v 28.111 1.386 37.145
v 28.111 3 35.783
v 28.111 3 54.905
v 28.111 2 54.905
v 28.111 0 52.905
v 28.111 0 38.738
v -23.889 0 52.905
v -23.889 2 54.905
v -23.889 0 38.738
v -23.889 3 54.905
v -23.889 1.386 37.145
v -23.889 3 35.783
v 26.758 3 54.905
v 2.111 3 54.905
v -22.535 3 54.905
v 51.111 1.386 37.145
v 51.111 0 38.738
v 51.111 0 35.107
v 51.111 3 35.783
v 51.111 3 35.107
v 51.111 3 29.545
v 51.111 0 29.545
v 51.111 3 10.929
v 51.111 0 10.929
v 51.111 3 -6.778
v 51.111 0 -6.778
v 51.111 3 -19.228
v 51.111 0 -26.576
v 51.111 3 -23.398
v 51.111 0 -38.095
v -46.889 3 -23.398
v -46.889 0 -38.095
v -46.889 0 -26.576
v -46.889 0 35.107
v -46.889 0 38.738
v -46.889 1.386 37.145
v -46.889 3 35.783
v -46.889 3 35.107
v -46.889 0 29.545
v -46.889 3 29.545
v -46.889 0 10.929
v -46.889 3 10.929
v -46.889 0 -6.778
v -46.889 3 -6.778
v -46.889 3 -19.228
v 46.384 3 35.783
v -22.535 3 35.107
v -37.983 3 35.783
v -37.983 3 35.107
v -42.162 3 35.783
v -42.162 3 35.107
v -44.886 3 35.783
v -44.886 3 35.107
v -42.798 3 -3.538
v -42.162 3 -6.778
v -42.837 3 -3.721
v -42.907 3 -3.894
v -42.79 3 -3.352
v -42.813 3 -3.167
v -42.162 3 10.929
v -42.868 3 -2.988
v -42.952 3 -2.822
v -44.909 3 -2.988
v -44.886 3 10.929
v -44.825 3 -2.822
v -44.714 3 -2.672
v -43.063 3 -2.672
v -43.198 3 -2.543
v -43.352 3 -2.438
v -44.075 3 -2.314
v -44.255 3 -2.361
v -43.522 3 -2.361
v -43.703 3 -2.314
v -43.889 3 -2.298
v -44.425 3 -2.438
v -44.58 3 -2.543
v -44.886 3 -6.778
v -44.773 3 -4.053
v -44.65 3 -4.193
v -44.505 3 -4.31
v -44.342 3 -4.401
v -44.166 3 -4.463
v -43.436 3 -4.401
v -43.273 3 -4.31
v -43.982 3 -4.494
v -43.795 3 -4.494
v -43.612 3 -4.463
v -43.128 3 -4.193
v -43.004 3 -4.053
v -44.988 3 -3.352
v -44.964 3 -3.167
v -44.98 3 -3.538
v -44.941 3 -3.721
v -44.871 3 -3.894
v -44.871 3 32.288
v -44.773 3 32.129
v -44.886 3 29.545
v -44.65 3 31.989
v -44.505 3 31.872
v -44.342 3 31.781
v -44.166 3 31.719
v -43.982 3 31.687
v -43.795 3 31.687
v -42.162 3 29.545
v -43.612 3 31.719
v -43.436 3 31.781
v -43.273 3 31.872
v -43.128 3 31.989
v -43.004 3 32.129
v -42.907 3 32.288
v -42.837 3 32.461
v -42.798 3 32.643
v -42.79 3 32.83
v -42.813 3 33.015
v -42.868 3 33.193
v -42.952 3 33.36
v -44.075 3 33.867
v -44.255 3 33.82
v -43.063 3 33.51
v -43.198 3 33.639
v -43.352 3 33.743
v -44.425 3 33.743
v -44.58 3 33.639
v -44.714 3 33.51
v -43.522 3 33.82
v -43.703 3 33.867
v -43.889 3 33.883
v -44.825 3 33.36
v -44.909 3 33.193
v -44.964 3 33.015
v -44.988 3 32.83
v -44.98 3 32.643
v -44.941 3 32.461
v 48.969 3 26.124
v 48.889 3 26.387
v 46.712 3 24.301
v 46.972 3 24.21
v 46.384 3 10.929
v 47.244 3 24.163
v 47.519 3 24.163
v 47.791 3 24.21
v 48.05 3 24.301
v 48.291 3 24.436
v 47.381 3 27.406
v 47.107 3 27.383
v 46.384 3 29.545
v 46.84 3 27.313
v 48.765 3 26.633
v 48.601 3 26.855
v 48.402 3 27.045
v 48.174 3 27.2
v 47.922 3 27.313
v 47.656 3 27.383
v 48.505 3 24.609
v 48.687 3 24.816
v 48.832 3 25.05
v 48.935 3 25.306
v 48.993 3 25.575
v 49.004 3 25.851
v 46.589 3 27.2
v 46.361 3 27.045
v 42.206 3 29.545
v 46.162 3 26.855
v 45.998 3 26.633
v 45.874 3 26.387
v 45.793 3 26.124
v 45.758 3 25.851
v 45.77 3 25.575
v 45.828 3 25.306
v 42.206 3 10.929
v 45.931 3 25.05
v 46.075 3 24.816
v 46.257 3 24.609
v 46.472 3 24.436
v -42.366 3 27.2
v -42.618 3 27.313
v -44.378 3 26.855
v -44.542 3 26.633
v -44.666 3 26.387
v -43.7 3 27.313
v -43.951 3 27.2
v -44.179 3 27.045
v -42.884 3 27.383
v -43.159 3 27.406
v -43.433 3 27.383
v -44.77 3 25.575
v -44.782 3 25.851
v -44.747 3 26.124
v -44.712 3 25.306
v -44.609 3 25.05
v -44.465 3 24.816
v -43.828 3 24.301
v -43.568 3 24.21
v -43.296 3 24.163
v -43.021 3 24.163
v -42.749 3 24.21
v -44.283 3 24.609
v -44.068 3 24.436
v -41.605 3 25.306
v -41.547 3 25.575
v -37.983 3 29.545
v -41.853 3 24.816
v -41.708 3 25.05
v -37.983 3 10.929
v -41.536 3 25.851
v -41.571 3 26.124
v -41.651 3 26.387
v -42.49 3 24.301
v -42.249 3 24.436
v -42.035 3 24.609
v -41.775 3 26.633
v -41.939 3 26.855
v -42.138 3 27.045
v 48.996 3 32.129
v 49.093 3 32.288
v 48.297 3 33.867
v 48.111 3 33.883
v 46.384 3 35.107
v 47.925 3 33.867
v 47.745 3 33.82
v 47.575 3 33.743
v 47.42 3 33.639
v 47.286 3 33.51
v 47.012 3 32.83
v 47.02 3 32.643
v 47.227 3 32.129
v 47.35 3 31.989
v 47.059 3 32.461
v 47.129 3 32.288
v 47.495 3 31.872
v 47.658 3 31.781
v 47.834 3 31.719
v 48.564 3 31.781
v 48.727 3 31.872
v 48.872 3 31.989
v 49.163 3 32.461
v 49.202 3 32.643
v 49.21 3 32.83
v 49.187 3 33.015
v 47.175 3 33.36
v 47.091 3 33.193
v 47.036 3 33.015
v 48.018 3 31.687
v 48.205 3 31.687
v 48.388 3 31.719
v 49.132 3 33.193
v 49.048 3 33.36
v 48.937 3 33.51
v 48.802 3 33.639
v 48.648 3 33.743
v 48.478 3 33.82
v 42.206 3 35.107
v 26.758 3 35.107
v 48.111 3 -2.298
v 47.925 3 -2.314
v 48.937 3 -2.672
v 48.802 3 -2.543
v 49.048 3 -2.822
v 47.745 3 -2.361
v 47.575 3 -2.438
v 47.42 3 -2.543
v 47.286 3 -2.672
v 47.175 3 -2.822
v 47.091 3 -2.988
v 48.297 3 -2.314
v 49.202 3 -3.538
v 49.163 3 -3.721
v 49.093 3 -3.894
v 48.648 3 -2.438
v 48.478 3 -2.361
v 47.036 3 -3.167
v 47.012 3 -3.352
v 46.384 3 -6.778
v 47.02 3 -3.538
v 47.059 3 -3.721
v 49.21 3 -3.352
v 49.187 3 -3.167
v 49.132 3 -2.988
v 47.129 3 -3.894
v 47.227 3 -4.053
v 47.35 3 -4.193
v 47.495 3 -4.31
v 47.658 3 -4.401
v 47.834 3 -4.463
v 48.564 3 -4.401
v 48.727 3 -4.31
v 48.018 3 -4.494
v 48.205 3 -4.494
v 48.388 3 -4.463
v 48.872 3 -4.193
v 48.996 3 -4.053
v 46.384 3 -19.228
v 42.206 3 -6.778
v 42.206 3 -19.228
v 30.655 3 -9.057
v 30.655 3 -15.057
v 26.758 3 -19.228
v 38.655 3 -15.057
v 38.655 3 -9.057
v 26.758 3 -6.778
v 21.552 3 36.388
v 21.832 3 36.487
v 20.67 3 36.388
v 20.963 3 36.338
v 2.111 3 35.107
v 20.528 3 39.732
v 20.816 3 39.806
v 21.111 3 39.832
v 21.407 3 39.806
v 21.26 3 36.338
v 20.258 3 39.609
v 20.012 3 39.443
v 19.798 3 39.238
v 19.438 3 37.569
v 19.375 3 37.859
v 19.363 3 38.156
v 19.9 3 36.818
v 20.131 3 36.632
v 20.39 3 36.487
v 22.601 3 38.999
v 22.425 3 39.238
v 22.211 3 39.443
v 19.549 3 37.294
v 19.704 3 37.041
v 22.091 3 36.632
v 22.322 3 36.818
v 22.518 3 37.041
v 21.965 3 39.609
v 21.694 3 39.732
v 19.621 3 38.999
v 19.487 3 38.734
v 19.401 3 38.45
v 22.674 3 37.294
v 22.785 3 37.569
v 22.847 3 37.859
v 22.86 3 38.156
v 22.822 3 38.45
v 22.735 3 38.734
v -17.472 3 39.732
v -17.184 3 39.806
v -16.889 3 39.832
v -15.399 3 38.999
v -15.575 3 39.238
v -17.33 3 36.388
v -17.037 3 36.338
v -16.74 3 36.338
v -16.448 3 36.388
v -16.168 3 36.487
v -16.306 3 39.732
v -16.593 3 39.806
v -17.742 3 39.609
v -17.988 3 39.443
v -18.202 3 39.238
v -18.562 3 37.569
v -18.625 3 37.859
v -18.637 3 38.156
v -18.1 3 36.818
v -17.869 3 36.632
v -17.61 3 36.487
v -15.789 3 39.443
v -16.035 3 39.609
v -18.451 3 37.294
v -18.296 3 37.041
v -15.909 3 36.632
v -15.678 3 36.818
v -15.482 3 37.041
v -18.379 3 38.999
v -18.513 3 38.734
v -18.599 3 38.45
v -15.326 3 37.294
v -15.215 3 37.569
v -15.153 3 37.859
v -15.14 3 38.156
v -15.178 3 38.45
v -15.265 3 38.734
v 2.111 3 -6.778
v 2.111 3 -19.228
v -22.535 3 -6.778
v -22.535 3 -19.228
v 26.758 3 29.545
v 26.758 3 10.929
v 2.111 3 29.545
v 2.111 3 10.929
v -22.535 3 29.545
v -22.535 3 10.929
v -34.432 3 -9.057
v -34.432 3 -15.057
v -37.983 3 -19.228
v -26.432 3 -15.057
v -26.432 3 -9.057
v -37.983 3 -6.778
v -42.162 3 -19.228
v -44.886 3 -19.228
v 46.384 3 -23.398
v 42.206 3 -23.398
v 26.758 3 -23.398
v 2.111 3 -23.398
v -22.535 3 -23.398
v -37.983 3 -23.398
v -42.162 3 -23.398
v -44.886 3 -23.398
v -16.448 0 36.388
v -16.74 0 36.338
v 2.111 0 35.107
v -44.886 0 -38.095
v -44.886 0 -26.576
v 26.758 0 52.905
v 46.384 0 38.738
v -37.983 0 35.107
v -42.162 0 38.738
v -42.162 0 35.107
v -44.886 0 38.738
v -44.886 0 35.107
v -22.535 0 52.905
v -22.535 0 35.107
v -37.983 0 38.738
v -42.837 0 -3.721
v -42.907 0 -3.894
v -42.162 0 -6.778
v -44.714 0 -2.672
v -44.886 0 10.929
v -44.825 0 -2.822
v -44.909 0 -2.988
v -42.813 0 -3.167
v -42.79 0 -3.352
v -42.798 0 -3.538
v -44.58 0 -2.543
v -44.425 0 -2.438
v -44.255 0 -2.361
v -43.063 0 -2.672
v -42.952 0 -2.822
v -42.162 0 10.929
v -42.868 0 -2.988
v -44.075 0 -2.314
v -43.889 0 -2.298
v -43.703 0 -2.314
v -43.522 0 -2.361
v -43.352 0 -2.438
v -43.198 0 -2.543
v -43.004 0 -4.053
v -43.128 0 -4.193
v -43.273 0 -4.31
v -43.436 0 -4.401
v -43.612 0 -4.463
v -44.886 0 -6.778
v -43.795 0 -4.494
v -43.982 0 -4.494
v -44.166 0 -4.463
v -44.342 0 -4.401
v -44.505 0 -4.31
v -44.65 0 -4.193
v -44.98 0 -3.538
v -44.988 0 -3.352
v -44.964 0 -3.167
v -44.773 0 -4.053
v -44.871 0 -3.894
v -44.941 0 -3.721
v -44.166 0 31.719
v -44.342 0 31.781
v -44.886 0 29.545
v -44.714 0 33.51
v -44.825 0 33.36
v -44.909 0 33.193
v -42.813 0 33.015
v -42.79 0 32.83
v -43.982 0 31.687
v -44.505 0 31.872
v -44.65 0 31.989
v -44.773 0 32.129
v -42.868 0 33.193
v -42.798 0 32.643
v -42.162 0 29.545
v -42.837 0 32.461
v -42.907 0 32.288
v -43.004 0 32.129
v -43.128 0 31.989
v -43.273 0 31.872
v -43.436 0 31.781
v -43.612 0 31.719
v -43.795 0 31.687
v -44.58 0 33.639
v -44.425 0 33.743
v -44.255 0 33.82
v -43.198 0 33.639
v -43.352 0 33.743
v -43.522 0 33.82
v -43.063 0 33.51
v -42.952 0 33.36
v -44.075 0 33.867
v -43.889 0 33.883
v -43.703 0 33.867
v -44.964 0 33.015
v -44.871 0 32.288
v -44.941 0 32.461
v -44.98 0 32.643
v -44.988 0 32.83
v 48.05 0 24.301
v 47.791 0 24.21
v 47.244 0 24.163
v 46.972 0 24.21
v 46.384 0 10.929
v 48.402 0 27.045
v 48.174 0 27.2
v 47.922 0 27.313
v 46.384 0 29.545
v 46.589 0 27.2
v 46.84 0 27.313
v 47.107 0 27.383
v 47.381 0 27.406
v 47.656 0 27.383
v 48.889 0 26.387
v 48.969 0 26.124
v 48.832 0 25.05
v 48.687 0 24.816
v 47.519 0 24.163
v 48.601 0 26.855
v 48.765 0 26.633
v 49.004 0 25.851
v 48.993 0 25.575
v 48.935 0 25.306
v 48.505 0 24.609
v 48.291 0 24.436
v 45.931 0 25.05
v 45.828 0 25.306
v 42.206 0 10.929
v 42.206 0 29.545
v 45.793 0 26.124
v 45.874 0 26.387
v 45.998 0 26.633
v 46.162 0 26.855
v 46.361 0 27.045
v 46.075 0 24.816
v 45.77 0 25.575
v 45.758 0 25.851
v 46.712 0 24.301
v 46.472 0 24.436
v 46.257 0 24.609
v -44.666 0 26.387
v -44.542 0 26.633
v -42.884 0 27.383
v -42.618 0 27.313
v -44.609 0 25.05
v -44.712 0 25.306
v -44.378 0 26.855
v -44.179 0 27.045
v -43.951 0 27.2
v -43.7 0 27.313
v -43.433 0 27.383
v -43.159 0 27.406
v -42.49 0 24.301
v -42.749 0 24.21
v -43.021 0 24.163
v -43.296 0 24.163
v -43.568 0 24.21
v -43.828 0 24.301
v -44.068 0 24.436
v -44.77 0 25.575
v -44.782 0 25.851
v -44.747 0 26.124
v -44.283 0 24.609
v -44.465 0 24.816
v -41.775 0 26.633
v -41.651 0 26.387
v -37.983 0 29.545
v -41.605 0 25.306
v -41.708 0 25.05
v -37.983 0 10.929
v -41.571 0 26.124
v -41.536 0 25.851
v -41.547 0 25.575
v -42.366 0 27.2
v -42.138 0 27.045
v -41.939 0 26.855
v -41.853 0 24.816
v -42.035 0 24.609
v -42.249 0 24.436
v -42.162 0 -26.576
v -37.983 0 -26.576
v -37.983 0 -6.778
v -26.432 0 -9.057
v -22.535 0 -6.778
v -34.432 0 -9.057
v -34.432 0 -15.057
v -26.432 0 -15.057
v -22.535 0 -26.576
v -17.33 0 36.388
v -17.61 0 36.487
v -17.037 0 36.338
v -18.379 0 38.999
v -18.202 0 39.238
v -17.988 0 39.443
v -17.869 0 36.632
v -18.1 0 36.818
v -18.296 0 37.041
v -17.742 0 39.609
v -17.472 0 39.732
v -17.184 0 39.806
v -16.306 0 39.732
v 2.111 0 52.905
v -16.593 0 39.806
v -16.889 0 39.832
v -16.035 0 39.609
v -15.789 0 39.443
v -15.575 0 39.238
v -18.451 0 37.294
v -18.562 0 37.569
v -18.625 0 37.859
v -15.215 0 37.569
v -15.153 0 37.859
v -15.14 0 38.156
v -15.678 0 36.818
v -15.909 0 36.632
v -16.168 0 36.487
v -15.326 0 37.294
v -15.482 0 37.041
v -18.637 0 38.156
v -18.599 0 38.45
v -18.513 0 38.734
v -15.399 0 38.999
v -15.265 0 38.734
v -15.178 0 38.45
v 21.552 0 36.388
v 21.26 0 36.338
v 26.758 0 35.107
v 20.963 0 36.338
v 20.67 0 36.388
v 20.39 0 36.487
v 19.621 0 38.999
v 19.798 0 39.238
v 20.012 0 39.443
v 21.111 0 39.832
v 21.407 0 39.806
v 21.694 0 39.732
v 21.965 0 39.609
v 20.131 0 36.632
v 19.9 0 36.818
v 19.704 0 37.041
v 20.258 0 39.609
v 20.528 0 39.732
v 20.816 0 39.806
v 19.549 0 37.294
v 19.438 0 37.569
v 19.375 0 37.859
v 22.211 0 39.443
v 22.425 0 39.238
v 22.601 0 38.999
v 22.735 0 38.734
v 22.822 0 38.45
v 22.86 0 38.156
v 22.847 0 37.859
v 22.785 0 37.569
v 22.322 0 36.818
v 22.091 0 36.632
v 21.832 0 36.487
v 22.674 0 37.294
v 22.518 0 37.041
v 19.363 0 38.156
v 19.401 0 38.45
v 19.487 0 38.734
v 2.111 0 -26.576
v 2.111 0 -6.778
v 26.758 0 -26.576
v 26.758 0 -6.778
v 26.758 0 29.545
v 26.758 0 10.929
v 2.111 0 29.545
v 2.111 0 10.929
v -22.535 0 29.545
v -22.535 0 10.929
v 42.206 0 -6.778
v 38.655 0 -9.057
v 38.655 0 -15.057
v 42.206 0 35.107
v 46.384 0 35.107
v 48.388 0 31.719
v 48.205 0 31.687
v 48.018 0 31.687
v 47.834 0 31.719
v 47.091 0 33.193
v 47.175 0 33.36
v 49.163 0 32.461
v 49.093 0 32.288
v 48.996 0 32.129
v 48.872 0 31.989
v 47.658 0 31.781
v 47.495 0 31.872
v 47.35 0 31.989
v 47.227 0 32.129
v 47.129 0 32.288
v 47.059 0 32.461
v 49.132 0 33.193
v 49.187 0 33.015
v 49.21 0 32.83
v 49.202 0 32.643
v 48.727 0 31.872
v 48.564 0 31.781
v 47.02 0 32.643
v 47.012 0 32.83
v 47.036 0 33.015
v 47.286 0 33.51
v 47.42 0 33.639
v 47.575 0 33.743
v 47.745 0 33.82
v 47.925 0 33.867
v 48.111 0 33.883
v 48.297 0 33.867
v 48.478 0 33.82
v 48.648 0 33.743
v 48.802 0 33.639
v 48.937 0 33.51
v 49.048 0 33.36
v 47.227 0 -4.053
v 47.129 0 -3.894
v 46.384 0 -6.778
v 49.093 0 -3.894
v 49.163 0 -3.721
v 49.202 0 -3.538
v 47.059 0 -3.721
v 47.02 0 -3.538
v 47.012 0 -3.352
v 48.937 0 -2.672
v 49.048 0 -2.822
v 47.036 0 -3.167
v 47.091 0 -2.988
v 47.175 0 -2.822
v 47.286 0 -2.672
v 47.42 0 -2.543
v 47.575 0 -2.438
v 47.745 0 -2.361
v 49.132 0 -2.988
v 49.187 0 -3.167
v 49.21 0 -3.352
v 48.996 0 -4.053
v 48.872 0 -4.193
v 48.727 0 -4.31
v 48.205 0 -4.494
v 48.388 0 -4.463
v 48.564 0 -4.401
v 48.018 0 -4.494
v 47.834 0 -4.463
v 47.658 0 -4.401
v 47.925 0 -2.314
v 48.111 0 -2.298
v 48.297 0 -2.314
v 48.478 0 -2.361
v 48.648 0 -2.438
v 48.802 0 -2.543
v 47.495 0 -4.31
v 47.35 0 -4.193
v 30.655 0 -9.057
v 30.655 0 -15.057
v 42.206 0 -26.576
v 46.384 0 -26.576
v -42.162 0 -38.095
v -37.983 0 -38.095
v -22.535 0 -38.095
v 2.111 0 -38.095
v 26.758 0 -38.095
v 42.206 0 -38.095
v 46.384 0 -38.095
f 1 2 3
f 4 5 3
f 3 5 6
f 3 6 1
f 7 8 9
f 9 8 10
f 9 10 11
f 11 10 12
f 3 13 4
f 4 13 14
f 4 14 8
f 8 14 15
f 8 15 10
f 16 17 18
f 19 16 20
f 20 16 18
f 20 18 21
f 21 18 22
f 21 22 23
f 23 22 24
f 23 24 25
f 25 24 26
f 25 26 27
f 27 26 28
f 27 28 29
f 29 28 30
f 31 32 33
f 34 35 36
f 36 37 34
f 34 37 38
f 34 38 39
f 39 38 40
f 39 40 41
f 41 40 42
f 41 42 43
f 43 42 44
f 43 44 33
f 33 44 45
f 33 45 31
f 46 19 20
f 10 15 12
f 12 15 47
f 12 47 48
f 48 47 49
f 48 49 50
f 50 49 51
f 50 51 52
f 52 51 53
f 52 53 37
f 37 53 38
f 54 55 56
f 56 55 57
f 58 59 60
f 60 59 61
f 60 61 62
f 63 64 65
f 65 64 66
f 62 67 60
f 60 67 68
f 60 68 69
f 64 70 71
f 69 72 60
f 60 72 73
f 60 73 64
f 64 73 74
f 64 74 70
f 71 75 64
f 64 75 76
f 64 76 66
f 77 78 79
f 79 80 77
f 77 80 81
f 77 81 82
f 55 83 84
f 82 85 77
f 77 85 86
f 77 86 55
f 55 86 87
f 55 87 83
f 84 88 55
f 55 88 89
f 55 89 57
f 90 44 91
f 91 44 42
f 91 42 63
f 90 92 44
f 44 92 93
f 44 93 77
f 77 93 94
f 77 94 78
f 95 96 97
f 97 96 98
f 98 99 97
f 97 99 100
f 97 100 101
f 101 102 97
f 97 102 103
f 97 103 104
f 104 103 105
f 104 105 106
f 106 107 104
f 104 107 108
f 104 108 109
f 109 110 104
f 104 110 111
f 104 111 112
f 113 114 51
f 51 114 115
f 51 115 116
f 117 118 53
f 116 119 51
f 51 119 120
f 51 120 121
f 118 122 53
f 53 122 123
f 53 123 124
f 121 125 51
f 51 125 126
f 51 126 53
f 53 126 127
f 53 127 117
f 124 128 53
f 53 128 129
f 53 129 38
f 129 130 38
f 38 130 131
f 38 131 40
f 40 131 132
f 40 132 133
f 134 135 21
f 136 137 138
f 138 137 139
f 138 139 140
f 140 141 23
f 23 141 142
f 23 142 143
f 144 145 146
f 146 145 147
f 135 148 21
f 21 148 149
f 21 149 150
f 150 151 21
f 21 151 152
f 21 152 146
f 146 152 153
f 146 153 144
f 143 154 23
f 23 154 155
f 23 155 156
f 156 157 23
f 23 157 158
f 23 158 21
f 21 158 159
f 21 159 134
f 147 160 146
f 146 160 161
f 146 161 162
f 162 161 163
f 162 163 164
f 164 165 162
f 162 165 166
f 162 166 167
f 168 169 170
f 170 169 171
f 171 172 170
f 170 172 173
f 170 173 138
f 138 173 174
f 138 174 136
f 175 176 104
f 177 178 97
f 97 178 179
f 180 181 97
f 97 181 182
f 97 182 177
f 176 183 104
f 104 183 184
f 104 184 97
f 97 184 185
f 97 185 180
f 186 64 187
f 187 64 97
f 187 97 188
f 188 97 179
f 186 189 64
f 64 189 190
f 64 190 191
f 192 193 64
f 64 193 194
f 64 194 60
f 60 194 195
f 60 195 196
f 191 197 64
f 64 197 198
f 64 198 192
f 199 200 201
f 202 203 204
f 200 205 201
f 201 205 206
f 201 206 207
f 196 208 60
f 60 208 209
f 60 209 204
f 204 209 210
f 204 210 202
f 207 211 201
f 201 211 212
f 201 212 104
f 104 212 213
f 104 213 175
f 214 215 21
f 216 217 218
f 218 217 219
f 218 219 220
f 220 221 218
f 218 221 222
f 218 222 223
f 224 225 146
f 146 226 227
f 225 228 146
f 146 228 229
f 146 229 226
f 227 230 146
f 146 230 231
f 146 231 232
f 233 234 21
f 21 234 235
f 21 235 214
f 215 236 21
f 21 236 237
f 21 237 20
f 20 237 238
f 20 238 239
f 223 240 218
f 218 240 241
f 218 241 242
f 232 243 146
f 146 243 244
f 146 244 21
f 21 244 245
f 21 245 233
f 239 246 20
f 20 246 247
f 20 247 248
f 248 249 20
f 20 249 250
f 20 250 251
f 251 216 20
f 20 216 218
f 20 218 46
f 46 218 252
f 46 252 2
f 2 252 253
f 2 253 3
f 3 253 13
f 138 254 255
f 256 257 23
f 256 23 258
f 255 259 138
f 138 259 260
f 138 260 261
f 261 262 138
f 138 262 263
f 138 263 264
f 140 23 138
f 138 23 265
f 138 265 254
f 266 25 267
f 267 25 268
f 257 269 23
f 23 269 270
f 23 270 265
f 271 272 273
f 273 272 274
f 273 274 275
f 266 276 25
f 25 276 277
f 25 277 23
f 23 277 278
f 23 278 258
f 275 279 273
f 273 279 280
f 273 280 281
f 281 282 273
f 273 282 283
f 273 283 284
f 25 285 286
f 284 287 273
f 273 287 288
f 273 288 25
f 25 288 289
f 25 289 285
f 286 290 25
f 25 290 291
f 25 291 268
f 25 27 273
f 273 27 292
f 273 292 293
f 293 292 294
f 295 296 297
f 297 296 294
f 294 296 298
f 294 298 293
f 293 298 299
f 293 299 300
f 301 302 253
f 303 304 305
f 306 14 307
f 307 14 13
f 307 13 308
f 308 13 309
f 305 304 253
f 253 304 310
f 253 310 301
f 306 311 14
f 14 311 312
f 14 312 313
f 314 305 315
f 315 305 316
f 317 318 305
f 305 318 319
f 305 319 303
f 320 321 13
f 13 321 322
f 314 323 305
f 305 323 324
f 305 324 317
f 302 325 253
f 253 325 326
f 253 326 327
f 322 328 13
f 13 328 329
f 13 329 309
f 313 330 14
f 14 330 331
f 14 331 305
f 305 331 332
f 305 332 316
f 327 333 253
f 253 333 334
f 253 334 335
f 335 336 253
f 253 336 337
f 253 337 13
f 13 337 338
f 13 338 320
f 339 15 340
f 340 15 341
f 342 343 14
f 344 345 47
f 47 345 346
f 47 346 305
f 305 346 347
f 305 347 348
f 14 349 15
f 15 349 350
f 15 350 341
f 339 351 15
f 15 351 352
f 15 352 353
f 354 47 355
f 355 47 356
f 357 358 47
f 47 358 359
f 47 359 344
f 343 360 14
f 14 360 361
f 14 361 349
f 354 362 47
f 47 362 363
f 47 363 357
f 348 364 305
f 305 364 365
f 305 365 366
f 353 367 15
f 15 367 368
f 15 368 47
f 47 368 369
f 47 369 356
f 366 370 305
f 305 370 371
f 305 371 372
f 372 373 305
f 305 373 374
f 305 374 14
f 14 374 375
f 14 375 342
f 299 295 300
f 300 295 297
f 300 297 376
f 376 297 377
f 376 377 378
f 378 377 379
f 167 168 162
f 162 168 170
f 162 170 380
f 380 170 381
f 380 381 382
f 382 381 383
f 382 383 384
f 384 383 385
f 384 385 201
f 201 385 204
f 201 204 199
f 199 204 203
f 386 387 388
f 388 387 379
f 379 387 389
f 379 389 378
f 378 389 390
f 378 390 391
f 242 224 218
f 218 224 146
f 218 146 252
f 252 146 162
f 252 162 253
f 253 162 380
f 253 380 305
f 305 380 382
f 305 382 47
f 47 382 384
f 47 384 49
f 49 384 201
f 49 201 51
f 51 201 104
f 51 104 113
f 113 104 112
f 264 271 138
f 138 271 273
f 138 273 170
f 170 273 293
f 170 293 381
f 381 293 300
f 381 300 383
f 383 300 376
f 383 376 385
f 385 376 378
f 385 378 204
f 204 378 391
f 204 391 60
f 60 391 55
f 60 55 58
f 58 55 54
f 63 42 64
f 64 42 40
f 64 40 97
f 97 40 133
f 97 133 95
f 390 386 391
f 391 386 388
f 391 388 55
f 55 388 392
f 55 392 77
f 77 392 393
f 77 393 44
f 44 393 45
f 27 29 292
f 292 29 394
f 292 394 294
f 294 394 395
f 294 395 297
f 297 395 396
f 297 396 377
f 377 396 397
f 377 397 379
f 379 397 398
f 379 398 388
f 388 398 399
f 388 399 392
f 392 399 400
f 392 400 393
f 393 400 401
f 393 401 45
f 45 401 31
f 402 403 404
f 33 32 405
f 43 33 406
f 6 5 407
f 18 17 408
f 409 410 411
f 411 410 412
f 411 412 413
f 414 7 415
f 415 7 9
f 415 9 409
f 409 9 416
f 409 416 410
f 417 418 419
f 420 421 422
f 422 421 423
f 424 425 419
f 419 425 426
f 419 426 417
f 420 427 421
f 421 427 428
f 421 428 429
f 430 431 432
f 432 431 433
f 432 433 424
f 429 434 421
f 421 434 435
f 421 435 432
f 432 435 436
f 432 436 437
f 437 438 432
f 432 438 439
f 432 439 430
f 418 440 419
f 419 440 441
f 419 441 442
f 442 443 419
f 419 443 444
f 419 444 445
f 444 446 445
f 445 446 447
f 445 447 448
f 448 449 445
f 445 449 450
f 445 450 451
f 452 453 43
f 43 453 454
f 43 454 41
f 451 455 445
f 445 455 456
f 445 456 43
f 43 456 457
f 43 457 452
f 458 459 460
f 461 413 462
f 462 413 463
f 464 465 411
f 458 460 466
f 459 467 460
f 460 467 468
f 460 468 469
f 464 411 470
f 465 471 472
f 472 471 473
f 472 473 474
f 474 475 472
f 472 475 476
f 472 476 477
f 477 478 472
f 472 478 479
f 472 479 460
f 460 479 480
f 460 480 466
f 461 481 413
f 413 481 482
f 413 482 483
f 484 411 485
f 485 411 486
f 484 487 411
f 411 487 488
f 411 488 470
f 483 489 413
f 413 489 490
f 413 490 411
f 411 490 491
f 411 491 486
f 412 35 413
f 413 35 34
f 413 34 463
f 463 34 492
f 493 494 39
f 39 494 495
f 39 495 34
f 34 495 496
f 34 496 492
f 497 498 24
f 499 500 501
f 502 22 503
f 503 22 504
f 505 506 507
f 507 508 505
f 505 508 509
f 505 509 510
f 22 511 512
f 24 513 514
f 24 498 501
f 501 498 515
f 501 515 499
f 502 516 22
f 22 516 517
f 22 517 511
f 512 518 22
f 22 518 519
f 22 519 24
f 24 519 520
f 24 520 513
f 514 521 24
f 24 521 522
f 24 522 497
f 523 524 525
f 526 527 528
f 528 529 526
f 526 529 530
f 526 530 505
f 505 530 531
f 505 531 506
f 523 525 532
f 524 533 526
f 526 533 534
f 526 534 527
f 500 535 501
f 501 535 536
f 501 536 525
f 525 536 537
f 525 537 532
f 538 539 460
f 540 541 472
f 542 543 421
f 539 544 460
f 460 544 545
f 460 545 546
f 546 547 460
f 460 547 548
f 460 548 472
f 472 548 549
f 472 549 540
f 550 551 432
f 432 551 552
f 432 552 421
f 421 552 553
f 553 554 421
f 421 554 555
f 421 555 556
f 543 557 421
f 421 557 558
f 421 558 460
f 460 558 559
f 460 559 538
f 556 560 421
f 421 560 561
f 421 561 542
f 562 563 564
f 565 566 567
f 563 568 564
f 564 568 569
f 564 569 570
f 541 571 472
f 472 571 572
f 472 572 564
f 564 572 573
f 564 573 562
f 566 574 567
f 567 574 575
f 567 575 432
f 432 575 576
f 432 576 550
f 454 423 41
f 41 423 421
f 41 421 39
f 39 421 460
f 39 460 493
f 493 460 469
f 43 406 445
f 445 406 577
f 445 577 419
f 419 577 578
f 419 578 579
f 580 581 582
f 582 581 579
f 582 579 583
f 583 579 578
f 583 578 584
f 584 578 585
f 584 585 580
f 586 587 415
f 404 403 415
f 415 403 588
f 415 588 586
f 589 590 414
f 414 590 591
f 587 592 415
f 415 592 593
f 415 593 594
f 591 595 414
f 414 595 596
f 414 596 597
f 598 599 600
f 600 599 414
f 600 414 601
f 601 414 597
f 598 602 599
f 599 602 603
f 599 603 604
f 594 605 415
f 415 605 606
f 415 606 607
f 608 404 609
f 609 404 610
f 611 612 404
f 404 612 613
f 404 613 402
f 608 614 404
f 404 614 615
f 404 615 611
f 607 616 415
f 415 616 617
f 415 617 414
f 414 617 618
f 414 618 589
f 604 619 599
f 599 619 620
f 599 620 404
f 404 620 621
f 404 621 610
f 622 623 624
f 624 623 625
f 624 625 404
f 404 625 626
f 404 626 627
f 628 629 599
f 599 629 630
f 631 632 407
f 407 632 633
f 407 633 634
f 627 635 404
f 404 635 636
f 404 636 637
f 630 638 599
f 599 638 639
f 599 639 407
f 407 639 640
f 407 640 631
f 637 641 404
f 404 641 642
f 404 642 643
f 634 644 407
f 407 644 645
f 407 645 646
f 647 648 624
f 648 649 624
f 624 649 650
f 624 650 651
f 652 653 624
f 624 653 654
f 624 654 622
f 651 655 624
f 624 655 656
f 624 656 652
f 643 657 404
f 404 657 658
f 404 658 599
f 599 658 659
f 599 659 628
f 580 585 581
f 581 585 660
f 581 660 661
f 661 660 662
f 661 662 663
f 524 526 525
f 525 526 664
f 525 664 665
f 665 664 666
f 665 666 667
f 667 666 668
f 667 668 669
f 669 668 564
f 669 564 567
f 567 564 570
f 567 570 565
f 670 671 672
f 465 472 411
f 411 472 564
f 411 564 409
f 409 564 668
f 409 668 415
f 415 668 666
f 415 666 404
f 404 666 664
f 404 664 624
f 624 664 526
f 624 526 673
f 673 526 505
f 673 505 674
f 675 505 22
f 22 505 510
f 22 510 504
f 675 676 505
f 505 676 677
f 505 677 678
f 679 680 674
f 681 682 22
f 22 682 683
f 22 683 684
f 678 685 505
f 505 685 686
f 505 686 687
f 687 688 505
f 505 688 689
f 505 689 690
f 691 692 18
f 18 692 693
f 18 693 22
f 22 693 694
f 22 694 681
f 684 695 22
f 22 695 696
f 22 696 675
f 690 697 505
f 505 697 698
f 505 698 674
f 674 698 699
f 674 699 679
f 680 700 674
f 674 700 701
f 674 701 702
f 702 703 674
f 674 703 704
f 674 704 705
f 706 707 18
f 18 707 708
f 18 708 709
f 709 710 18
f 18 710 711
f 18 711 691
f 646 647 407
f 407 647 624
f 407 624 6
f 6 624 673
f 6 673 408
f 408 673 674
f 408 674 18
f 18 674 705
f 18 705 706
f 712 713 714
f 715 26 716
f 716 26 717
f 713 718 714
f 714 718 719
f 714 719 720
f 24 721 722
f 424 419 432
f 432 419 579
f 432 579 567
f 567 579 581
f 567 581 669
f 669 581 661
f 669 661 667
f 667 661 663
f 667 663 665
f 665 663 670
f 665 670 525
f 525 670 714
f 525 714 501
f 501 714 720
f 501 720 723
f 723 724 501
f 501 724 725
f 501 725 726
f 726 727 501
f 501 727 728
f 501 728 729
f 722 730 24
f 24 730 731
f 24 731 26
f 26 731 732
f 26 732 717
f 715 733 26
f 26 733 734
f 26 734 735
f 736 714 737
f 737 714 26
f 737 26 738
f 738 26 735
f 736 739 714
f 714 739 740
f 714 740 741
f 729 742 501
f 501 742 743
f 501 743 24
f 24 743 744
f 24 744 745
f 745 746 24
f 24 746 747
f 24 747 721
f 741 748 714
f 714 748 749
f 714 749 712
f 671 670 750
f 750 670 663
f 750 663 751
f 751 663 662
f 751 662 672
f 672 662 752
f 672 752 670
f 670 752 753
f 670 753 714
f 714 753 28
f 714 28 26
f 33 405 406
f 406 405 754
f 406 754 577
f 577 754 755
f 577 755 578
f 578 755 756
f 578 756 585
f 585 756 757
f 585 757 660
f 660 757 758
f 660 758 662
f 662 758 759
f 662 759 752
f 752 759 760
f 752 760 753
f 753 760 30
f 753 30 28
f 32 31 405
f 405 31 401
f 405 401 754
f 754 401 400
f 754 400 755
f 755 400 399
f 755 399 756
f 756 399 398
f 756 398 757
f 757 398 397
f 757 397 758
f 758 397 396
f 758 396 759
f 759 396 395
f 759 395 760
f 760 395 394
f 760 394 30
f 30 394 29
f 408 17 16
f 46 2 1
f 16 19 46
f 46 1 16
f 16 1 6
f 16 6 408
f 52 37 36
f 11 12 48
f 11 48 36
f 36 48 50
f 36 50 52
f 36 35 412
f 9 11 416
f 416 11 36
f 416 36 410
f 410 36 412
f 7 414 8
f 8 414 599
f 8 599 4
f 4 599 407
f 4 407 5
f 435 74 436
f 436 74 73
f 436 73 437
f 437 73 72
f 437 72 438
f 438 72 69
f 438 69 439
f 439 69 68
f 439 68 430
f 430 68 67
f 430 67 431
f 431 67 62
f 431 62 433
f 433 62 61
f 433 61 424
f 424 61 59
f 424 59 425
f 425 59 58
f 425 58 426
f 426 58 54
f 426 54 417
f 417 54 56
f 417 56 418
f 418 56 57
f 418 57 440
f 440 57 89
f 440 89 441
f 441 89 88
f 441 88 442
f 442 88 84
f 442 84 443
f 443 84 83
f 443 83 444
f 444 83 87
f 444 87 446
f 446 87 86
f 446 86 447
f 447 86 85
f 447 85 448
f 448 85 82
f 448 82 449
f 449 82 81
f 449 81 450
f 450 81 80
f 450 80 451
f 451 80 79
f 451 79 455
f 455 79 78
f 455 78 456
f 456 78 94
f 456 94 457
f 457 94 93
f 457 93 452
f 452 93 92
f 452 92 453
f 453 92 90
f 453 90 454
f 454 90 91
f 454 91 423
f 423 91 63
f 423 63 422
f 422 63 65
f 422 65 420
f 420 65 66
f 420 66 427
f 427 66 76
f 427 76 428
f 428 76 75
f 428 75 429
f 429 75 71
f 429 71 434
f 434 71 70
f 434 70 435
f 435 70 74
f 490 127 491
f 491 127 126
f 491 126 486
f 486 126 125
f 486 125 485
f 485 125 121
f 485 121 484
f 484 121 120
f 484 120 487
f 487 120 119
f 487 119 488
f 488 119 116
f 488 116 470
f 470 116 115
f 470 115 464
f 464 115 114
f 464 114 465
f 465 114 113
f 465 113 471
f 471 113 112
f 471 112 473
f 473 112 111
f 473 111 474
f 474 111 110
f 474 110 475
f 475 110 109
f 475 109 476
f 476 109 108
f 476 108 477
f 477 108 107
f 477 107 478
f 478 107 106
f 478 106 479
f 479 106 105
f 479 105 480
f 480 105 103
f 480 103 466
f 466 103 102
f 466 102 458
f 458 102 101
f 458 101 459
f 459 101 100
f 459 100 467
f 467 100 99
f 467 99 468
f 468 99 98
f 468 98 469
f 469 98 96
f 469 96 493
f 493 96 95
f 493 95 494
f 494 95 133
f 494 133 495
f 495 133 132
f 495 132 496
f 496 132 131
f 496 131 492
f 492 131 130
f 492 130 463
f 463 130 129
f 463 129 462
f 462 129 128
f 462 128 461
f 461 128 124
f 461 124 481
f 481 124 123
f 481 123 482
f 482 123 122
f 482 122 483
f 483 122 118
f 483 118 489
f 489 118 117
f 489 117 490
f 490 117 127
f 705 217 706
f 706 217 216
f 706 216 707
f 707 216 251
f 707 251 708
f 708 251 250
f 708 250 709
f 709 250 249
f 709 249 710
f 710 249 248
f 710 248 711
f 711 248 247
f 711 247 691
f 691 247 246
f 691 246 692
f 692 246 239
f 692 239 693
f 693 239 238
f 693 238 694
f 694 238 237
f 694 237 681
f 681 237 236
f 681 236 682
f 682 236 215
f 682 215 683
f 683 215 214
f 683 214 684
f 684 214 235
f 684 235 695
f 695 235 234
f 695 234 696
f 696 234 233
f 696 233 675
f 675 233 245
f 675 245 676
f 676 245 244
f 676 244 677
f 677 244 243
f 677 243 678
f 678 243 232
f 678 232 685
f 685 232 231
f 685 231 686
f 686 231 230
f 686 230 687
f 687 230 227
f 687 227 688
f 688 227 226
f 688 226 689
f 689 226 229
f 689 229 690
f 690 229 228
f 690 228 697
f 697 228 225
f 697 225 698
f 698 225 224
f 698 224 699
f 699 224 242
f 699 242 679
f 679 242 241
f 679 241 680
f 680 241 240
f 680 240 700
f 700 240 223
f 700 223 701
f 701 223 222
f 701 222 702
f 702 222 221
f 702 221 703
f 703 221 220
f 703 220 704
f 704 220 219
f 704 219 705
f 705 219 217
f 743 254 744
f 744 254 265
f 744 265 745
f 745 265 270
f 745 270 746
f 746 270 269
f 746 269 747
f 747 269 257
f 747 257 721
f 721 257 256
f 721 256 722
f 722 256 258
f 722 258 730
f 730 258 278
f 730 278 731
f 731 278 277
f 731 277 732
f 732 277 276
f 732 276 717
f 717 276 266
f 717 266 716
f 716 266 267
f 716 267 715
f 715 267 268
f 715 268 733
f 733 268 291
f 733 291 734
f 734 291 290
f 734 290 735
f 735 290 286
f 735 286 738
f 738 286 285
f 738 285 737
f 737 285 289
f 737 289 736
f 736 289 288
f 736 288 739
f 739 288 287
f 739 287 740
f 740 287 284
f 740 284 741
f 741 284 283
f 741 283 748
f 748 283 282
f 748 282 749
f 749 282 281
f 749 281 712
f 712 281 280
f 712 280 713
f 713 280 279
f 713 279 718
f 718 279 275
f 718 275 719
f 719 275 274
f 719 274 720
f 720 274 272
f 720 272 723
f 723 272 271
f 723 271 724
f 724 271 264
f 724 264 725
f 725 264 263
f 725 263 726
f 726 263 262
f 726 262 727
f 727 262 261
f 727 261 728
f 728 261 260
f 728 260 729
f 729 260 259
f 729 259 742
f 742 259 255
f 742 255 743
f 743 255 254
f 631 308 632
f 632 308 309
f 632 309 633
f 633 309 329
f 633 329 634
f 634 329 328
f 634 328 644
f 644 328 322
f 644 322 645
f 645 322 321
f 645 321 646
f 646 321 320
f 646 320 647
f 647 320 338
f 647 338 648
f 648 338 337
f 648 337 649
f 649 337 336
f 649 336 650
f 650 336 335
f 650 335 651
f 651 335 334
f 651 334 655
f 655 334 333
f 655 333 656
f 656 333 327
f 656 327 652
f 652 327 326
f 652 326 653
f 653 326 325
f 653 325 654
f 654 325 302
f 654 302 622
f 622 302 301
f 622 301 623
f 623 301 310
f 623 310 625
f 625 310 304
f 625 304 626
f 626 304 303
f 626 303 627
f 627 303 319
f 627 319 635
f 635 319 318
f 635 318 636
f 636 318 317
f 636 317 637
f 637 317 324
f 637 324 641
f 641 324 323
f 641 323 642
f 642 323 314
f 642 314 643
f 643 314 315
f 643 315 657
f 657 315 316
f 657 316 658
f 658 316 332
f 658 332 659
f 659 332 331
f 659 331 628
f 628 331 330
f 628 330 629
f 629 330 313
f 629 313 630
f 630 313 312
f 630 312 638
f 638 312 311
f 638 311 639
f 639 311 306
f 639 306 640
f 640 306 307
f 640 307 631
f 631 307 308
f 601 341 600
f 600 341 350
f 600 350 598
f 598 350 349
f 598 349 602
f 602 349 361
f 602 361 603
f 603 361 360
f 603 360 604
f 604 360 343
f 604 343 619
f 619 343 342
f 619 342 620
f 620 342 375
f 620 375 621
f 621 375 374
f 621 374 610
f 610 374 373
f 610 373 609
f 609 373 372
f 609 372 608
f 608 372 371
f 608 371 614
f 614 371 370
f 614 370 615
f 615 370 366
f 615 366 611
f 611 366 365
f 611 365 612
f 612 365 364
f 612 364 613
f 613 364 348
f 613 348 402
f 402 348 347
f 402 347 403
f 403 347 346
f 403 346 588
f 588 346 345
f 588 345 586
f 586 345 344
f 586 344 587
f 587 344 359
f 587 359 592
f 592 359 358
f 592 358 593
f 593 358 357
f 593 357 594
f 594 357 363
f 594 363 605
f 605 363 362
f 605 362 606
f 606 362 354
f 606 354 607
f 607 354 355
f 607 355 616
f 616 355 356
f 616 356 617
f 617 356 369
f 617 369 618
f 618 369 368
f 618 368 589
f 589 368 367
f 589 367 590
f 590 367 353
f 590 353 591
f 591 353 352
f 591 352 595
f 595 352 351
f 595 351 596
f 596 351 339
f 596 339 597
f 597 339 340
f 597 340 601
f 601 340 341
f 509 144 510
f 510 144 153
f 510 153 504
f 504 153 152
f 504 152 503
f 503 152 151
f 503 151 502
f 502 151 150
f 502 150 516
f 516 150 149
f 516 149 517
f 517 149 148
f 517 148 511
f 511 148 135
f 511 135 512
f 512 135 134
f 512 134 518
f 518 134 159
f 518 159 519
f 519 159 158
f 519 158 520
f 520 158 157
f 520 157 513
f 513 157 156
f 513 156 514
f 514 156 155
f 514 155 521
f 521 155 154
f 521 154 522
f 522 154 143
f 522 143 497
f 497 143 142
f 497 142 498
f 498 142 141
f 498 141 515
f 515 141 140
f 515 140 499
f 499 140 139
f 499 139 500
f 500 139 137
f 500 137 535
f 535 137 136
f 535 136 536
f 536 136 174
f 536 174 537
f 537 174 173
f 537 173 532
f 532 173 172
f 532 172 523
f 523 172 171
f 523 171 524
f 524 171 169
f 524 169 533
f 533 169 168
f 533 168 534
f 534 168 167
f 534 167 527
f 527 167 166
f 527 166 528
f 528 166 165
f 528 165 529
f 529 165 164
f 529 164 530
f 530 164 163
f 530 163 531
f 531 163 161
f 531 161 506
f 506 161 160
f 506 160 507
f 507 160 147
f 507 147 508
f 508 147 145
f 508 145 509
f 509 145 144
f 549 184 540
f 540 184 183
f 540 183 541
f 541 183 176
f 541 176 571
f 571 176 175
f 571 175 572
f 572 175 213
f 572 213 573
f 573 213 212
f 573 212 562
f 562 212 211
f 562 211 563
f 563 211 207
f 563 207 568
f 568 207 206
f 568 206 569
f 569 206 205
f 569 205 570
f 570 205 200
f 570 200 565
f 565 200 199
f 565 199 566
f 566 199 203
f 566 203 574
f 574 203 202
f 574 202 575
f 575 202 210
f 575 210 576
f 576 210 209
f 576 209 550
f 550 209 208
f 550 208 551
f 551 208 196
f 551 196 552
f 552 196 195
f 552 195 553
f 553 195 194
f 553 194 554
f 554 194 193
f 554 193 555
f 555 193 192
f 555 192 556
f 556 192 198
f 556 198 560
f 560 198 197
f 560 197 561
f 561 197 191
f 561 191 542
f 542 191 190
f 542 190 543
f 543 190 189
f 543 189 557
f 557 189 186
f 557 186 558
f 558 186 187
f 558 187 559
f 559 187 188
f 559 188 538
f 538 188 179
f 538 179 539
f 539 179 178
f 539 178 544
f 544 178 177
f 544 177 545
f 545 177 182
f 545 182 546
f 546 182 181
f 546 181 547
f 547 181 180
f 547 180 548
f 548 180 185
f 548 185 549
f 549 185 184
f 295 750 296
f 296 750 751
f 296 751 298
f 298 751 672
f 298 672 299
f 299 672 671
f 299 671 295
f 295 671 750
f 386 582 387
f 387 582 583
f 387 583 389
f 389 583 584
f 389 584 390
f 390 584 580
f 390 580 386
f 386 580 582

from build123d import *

# Parameters (mm, degrees)
SALIENTE_EXTRUIR1_DEPTH = 3
CORTAR_EXTRUIR1_DEPTH   = 102
SALIENTE_EXTRUIR2_DEPTH = 98
CORTAR_EXTRUIR2_DEPTH   = 23
CORTAR_EXTRUIR3_START   = -75
CORTAR_EXTRUIR3_DEPTH   = 23
CHAFL_N1_SIZE           = 2
CROQUIS3_R              = 1.1
CORTAR_EXTRUIR4_DEPTH   = 23
CROQUIS5_R              = 1.75
CORTAR_EXTRUIR5_DEPTH   = 52
CROQUIS6_R              = 1.624451876
CORTAR_EXTRUIR6_DEPTH   = 4
CROQUIS7_R              = 1.624451876
CORTAR_EXTRUIR7_DEPTH   = 4
CROQUIS8_W              = 8
CROQUIS8_H              = 6
CORTAR_EXTRUIR8_DEPTH   = 4


with BuildPart() as part:
    # Croquis1 → Saliente-Extruir1 (new body)
    with BuildSketch(Plane(origin=(0, 0, 0), x_dir=(1, 0, 0), z_dir=(0, 1, 0))):
        Polygon((51.111271676, 38.095375723), (-46.888728324, 38.095375723), (-46.888728324, -36.904624277), (-23.888728324, -36.904624277), (-23.888728324, -54.904624277), (28.111271676, -54.904624277), (28.111271676, -36.904624277), (51.111271676, -36.904624277), align=None)
    extrude(amount=SALIENTE_EXTRUIR1_DEPTH)

    # Croquis2 → Cortar-Extruir1 (cut)
    with BuildSketch(Plane.ZY.offset(46.888728324)):
        Polygon((-38.095375723, 3), (-38.095375723, 0), (-23.398437266, 3), align=None)
    extrude(amount=-CORTAR_EXTRUIR1_DEPTH, mode=Mode.SUBTRACT)

    # Croquis2<4> → Saliente-Extruir2 (add)
    with BuildSketch(Plane.ZY.offset(46.888728324)):
        with BuildLine():
            Line((36.904624277, 1.635706113), (36.904624277, 0))
            Line((36.904624277, 0), (38.738229724, 0))
            ThreePointArc((38.738229724, 0), (37.784681493, 0.776661817), (36.904624277, 1.635706113))
        make_face()
    extrude(amount=-SALIENTE_EXTRUIR2_DEPTH)

    # Croquis2<5> → Cortar-Extruir2 (cut)
    with BuildSketch(Plane.ZY.offset(46.888728324)):
        with BuildLine():
            ThreePointArc((35.783023673, 3), (36.321816168, 2.299760203), (36.904624277, 1.635706113))
            Line((36.904624277, 1.635706113), (36.904624277, 2.693376137))
            ThreePointArc((36.904624277, 2.693376137), (36.779988068, 2.845753154), (36.657673511, 3))
            Line((36.657673511, 3), (35.783023673, 3))
        make_face()
        with BuildLine():
            ThreePointArc((36.657673511, 3), (36.779988068, 2.845753154), (36.904624277, 2.693376137))
            Line((36.904624277, 2.693376137), (36.904624277, 3))
            Line((36.904624277, 3), (36.657673511, 3))
        make_face()
    extrude(amount=-CORTAR_EXTRUIR2_DEPTH, mode=Mode.SUBTRACT)

    # Croquis2<6> → Cortar-Extruir3 (cut)
    with BuildSketch(Plane.ZY.offset(46.888728324).offset(CORTAR_EXTRUIR3_START)):
        with BuildLine():
            ThreePointArc((35.783023673, 3), (36.321816168, 2.299760203), (36.904624277, 1.635706113))
            Line((36.904624277, 1.635706113), (36.904624277, 2.693376137))
            ThreePointArc((36.904624277, 2.693376137), (36.779988068, 2.845753154), (36.657673511, 3))
            Line((36.657673511, 3), (35.783023673, 3))
        make_face()
        with BuildLine():
            ThreePointArc((36.657673511, 3), (36.779988068, 2.845753154), (36.904624277, 2.693376137))
            Line((36.904624277, 2.693376137), (36.904624277, 3))
            Line((36.904624277, 3), (36.657673511, 3))
        make_face()
    extrude(amount=-CORTAR_EXTRUIR3_DEPTH, mode=Mode.SUBTRACT)

    # Chaflán1
    chafl_n1_edges = [part.edges().sort_by_distance(p)[0] for p in [
        (2.111271676, 0, 54.904624277),
    ]]
    chamfer(chafl_n1_edges, length=CHAFL_N1_SIZE)

    # Croquis3 → Cortar-Extruir4 (cut)
    with BuildSketch(Plane(origin=(0, 3, 0), x_dir=(1, 0, 0), z_dir=(0, 1, 0))):
        with Locations(Location((-43.888728324, 3.398437266, 0), (0, 0, 270))):
            Circle(CROQUIS3_R)
        with Locations(Location((-43.888728324, -32.783023673, 0), (0, 0, 270))):
            Circle(CROQUIS3_R)
        with Locations(Location((48.111271676, -32.783023673, 0), (0, 0, 270))):
            Circle(CROQUIS3_R)
        with Locations(Location((48.111271676, 3.398437266, 0), (0, 0, 270))):
            Circle(CROQUIS3_R)
    extrude(amount=-CORTAR_EXTRUIR4_DEPTH, mode=Mode.SUBTRACT)

    # Croquis5 → Cortar-Extruir5 (cut)
    with BuildSketch(Plane(origin=(0, 3, 0), x_dir=(1, 0, 0), z_dir=(0, 1, 0))):
        with Locations(Location((-16.888728324, -38.081562734, 0), (0, 0, 270))):
            Circle(CROQUIS5_R)
        with Locations(Location((21.111271676, -38.081562734, 0), (0, 0, 270))):
            Circle(CROQUIS5_R)
    extrude(amount=-CORTAR_EXTRUIR5_DEPTH, mode=Mode.SUBTRACT)

    # Croquis6 → Cortar-Extruir6 (cut)
    with BuildSketch(Plane(origin=(0, 3, 0), x_dir=(1, 0, 0), z_dir=(0, 1, 0))):
        with Locations(Location((47.381271676, -25.781562734, 0), (0, 0, 270))):
            Circle(CROQUIS6_R)
    extrude(amount=-CORTAR_EXTRUIR6_DEPTH, mode=Mode.SUBTRACT)

    # Croquis7 → Cortar-Extruir7 (cut)
    with BuildSketch(Plane(origin=(0, 3, 0), x_dir=(1, 0, 0), z_dir=(0, 1, 0))):
        with Locations(Location((-43.158728324, -25.781562734, 0), (0, 0, 270))):
            Circle(CROQUIS7_R)
    extrude(amount=-CORTAR_EXTRUIR7_DEPTH, mode=Mode.SUBTRACT)

    # Croquis8 → Cortar-Extruir8 (cut)
    with BuildSketch(Plane(origin=(0, 3, 0), x_dir=(1, 0, 0), z_dir=(0, 1, 0))):
        with Locations((-30.432234651, 12.05730105)):
            Rectangle(CROQUIS8_W, CROQUIS8_H)
        with Locations((34.654778004, 12.05730105)):
            Rectangle(CROQUIS8_W, CROQUIS8_H)
    extrude(amount=-CORTAR_EXTRUIR8_DEPTH, mode=Mode.SUBTRACT)


solid = part.part
